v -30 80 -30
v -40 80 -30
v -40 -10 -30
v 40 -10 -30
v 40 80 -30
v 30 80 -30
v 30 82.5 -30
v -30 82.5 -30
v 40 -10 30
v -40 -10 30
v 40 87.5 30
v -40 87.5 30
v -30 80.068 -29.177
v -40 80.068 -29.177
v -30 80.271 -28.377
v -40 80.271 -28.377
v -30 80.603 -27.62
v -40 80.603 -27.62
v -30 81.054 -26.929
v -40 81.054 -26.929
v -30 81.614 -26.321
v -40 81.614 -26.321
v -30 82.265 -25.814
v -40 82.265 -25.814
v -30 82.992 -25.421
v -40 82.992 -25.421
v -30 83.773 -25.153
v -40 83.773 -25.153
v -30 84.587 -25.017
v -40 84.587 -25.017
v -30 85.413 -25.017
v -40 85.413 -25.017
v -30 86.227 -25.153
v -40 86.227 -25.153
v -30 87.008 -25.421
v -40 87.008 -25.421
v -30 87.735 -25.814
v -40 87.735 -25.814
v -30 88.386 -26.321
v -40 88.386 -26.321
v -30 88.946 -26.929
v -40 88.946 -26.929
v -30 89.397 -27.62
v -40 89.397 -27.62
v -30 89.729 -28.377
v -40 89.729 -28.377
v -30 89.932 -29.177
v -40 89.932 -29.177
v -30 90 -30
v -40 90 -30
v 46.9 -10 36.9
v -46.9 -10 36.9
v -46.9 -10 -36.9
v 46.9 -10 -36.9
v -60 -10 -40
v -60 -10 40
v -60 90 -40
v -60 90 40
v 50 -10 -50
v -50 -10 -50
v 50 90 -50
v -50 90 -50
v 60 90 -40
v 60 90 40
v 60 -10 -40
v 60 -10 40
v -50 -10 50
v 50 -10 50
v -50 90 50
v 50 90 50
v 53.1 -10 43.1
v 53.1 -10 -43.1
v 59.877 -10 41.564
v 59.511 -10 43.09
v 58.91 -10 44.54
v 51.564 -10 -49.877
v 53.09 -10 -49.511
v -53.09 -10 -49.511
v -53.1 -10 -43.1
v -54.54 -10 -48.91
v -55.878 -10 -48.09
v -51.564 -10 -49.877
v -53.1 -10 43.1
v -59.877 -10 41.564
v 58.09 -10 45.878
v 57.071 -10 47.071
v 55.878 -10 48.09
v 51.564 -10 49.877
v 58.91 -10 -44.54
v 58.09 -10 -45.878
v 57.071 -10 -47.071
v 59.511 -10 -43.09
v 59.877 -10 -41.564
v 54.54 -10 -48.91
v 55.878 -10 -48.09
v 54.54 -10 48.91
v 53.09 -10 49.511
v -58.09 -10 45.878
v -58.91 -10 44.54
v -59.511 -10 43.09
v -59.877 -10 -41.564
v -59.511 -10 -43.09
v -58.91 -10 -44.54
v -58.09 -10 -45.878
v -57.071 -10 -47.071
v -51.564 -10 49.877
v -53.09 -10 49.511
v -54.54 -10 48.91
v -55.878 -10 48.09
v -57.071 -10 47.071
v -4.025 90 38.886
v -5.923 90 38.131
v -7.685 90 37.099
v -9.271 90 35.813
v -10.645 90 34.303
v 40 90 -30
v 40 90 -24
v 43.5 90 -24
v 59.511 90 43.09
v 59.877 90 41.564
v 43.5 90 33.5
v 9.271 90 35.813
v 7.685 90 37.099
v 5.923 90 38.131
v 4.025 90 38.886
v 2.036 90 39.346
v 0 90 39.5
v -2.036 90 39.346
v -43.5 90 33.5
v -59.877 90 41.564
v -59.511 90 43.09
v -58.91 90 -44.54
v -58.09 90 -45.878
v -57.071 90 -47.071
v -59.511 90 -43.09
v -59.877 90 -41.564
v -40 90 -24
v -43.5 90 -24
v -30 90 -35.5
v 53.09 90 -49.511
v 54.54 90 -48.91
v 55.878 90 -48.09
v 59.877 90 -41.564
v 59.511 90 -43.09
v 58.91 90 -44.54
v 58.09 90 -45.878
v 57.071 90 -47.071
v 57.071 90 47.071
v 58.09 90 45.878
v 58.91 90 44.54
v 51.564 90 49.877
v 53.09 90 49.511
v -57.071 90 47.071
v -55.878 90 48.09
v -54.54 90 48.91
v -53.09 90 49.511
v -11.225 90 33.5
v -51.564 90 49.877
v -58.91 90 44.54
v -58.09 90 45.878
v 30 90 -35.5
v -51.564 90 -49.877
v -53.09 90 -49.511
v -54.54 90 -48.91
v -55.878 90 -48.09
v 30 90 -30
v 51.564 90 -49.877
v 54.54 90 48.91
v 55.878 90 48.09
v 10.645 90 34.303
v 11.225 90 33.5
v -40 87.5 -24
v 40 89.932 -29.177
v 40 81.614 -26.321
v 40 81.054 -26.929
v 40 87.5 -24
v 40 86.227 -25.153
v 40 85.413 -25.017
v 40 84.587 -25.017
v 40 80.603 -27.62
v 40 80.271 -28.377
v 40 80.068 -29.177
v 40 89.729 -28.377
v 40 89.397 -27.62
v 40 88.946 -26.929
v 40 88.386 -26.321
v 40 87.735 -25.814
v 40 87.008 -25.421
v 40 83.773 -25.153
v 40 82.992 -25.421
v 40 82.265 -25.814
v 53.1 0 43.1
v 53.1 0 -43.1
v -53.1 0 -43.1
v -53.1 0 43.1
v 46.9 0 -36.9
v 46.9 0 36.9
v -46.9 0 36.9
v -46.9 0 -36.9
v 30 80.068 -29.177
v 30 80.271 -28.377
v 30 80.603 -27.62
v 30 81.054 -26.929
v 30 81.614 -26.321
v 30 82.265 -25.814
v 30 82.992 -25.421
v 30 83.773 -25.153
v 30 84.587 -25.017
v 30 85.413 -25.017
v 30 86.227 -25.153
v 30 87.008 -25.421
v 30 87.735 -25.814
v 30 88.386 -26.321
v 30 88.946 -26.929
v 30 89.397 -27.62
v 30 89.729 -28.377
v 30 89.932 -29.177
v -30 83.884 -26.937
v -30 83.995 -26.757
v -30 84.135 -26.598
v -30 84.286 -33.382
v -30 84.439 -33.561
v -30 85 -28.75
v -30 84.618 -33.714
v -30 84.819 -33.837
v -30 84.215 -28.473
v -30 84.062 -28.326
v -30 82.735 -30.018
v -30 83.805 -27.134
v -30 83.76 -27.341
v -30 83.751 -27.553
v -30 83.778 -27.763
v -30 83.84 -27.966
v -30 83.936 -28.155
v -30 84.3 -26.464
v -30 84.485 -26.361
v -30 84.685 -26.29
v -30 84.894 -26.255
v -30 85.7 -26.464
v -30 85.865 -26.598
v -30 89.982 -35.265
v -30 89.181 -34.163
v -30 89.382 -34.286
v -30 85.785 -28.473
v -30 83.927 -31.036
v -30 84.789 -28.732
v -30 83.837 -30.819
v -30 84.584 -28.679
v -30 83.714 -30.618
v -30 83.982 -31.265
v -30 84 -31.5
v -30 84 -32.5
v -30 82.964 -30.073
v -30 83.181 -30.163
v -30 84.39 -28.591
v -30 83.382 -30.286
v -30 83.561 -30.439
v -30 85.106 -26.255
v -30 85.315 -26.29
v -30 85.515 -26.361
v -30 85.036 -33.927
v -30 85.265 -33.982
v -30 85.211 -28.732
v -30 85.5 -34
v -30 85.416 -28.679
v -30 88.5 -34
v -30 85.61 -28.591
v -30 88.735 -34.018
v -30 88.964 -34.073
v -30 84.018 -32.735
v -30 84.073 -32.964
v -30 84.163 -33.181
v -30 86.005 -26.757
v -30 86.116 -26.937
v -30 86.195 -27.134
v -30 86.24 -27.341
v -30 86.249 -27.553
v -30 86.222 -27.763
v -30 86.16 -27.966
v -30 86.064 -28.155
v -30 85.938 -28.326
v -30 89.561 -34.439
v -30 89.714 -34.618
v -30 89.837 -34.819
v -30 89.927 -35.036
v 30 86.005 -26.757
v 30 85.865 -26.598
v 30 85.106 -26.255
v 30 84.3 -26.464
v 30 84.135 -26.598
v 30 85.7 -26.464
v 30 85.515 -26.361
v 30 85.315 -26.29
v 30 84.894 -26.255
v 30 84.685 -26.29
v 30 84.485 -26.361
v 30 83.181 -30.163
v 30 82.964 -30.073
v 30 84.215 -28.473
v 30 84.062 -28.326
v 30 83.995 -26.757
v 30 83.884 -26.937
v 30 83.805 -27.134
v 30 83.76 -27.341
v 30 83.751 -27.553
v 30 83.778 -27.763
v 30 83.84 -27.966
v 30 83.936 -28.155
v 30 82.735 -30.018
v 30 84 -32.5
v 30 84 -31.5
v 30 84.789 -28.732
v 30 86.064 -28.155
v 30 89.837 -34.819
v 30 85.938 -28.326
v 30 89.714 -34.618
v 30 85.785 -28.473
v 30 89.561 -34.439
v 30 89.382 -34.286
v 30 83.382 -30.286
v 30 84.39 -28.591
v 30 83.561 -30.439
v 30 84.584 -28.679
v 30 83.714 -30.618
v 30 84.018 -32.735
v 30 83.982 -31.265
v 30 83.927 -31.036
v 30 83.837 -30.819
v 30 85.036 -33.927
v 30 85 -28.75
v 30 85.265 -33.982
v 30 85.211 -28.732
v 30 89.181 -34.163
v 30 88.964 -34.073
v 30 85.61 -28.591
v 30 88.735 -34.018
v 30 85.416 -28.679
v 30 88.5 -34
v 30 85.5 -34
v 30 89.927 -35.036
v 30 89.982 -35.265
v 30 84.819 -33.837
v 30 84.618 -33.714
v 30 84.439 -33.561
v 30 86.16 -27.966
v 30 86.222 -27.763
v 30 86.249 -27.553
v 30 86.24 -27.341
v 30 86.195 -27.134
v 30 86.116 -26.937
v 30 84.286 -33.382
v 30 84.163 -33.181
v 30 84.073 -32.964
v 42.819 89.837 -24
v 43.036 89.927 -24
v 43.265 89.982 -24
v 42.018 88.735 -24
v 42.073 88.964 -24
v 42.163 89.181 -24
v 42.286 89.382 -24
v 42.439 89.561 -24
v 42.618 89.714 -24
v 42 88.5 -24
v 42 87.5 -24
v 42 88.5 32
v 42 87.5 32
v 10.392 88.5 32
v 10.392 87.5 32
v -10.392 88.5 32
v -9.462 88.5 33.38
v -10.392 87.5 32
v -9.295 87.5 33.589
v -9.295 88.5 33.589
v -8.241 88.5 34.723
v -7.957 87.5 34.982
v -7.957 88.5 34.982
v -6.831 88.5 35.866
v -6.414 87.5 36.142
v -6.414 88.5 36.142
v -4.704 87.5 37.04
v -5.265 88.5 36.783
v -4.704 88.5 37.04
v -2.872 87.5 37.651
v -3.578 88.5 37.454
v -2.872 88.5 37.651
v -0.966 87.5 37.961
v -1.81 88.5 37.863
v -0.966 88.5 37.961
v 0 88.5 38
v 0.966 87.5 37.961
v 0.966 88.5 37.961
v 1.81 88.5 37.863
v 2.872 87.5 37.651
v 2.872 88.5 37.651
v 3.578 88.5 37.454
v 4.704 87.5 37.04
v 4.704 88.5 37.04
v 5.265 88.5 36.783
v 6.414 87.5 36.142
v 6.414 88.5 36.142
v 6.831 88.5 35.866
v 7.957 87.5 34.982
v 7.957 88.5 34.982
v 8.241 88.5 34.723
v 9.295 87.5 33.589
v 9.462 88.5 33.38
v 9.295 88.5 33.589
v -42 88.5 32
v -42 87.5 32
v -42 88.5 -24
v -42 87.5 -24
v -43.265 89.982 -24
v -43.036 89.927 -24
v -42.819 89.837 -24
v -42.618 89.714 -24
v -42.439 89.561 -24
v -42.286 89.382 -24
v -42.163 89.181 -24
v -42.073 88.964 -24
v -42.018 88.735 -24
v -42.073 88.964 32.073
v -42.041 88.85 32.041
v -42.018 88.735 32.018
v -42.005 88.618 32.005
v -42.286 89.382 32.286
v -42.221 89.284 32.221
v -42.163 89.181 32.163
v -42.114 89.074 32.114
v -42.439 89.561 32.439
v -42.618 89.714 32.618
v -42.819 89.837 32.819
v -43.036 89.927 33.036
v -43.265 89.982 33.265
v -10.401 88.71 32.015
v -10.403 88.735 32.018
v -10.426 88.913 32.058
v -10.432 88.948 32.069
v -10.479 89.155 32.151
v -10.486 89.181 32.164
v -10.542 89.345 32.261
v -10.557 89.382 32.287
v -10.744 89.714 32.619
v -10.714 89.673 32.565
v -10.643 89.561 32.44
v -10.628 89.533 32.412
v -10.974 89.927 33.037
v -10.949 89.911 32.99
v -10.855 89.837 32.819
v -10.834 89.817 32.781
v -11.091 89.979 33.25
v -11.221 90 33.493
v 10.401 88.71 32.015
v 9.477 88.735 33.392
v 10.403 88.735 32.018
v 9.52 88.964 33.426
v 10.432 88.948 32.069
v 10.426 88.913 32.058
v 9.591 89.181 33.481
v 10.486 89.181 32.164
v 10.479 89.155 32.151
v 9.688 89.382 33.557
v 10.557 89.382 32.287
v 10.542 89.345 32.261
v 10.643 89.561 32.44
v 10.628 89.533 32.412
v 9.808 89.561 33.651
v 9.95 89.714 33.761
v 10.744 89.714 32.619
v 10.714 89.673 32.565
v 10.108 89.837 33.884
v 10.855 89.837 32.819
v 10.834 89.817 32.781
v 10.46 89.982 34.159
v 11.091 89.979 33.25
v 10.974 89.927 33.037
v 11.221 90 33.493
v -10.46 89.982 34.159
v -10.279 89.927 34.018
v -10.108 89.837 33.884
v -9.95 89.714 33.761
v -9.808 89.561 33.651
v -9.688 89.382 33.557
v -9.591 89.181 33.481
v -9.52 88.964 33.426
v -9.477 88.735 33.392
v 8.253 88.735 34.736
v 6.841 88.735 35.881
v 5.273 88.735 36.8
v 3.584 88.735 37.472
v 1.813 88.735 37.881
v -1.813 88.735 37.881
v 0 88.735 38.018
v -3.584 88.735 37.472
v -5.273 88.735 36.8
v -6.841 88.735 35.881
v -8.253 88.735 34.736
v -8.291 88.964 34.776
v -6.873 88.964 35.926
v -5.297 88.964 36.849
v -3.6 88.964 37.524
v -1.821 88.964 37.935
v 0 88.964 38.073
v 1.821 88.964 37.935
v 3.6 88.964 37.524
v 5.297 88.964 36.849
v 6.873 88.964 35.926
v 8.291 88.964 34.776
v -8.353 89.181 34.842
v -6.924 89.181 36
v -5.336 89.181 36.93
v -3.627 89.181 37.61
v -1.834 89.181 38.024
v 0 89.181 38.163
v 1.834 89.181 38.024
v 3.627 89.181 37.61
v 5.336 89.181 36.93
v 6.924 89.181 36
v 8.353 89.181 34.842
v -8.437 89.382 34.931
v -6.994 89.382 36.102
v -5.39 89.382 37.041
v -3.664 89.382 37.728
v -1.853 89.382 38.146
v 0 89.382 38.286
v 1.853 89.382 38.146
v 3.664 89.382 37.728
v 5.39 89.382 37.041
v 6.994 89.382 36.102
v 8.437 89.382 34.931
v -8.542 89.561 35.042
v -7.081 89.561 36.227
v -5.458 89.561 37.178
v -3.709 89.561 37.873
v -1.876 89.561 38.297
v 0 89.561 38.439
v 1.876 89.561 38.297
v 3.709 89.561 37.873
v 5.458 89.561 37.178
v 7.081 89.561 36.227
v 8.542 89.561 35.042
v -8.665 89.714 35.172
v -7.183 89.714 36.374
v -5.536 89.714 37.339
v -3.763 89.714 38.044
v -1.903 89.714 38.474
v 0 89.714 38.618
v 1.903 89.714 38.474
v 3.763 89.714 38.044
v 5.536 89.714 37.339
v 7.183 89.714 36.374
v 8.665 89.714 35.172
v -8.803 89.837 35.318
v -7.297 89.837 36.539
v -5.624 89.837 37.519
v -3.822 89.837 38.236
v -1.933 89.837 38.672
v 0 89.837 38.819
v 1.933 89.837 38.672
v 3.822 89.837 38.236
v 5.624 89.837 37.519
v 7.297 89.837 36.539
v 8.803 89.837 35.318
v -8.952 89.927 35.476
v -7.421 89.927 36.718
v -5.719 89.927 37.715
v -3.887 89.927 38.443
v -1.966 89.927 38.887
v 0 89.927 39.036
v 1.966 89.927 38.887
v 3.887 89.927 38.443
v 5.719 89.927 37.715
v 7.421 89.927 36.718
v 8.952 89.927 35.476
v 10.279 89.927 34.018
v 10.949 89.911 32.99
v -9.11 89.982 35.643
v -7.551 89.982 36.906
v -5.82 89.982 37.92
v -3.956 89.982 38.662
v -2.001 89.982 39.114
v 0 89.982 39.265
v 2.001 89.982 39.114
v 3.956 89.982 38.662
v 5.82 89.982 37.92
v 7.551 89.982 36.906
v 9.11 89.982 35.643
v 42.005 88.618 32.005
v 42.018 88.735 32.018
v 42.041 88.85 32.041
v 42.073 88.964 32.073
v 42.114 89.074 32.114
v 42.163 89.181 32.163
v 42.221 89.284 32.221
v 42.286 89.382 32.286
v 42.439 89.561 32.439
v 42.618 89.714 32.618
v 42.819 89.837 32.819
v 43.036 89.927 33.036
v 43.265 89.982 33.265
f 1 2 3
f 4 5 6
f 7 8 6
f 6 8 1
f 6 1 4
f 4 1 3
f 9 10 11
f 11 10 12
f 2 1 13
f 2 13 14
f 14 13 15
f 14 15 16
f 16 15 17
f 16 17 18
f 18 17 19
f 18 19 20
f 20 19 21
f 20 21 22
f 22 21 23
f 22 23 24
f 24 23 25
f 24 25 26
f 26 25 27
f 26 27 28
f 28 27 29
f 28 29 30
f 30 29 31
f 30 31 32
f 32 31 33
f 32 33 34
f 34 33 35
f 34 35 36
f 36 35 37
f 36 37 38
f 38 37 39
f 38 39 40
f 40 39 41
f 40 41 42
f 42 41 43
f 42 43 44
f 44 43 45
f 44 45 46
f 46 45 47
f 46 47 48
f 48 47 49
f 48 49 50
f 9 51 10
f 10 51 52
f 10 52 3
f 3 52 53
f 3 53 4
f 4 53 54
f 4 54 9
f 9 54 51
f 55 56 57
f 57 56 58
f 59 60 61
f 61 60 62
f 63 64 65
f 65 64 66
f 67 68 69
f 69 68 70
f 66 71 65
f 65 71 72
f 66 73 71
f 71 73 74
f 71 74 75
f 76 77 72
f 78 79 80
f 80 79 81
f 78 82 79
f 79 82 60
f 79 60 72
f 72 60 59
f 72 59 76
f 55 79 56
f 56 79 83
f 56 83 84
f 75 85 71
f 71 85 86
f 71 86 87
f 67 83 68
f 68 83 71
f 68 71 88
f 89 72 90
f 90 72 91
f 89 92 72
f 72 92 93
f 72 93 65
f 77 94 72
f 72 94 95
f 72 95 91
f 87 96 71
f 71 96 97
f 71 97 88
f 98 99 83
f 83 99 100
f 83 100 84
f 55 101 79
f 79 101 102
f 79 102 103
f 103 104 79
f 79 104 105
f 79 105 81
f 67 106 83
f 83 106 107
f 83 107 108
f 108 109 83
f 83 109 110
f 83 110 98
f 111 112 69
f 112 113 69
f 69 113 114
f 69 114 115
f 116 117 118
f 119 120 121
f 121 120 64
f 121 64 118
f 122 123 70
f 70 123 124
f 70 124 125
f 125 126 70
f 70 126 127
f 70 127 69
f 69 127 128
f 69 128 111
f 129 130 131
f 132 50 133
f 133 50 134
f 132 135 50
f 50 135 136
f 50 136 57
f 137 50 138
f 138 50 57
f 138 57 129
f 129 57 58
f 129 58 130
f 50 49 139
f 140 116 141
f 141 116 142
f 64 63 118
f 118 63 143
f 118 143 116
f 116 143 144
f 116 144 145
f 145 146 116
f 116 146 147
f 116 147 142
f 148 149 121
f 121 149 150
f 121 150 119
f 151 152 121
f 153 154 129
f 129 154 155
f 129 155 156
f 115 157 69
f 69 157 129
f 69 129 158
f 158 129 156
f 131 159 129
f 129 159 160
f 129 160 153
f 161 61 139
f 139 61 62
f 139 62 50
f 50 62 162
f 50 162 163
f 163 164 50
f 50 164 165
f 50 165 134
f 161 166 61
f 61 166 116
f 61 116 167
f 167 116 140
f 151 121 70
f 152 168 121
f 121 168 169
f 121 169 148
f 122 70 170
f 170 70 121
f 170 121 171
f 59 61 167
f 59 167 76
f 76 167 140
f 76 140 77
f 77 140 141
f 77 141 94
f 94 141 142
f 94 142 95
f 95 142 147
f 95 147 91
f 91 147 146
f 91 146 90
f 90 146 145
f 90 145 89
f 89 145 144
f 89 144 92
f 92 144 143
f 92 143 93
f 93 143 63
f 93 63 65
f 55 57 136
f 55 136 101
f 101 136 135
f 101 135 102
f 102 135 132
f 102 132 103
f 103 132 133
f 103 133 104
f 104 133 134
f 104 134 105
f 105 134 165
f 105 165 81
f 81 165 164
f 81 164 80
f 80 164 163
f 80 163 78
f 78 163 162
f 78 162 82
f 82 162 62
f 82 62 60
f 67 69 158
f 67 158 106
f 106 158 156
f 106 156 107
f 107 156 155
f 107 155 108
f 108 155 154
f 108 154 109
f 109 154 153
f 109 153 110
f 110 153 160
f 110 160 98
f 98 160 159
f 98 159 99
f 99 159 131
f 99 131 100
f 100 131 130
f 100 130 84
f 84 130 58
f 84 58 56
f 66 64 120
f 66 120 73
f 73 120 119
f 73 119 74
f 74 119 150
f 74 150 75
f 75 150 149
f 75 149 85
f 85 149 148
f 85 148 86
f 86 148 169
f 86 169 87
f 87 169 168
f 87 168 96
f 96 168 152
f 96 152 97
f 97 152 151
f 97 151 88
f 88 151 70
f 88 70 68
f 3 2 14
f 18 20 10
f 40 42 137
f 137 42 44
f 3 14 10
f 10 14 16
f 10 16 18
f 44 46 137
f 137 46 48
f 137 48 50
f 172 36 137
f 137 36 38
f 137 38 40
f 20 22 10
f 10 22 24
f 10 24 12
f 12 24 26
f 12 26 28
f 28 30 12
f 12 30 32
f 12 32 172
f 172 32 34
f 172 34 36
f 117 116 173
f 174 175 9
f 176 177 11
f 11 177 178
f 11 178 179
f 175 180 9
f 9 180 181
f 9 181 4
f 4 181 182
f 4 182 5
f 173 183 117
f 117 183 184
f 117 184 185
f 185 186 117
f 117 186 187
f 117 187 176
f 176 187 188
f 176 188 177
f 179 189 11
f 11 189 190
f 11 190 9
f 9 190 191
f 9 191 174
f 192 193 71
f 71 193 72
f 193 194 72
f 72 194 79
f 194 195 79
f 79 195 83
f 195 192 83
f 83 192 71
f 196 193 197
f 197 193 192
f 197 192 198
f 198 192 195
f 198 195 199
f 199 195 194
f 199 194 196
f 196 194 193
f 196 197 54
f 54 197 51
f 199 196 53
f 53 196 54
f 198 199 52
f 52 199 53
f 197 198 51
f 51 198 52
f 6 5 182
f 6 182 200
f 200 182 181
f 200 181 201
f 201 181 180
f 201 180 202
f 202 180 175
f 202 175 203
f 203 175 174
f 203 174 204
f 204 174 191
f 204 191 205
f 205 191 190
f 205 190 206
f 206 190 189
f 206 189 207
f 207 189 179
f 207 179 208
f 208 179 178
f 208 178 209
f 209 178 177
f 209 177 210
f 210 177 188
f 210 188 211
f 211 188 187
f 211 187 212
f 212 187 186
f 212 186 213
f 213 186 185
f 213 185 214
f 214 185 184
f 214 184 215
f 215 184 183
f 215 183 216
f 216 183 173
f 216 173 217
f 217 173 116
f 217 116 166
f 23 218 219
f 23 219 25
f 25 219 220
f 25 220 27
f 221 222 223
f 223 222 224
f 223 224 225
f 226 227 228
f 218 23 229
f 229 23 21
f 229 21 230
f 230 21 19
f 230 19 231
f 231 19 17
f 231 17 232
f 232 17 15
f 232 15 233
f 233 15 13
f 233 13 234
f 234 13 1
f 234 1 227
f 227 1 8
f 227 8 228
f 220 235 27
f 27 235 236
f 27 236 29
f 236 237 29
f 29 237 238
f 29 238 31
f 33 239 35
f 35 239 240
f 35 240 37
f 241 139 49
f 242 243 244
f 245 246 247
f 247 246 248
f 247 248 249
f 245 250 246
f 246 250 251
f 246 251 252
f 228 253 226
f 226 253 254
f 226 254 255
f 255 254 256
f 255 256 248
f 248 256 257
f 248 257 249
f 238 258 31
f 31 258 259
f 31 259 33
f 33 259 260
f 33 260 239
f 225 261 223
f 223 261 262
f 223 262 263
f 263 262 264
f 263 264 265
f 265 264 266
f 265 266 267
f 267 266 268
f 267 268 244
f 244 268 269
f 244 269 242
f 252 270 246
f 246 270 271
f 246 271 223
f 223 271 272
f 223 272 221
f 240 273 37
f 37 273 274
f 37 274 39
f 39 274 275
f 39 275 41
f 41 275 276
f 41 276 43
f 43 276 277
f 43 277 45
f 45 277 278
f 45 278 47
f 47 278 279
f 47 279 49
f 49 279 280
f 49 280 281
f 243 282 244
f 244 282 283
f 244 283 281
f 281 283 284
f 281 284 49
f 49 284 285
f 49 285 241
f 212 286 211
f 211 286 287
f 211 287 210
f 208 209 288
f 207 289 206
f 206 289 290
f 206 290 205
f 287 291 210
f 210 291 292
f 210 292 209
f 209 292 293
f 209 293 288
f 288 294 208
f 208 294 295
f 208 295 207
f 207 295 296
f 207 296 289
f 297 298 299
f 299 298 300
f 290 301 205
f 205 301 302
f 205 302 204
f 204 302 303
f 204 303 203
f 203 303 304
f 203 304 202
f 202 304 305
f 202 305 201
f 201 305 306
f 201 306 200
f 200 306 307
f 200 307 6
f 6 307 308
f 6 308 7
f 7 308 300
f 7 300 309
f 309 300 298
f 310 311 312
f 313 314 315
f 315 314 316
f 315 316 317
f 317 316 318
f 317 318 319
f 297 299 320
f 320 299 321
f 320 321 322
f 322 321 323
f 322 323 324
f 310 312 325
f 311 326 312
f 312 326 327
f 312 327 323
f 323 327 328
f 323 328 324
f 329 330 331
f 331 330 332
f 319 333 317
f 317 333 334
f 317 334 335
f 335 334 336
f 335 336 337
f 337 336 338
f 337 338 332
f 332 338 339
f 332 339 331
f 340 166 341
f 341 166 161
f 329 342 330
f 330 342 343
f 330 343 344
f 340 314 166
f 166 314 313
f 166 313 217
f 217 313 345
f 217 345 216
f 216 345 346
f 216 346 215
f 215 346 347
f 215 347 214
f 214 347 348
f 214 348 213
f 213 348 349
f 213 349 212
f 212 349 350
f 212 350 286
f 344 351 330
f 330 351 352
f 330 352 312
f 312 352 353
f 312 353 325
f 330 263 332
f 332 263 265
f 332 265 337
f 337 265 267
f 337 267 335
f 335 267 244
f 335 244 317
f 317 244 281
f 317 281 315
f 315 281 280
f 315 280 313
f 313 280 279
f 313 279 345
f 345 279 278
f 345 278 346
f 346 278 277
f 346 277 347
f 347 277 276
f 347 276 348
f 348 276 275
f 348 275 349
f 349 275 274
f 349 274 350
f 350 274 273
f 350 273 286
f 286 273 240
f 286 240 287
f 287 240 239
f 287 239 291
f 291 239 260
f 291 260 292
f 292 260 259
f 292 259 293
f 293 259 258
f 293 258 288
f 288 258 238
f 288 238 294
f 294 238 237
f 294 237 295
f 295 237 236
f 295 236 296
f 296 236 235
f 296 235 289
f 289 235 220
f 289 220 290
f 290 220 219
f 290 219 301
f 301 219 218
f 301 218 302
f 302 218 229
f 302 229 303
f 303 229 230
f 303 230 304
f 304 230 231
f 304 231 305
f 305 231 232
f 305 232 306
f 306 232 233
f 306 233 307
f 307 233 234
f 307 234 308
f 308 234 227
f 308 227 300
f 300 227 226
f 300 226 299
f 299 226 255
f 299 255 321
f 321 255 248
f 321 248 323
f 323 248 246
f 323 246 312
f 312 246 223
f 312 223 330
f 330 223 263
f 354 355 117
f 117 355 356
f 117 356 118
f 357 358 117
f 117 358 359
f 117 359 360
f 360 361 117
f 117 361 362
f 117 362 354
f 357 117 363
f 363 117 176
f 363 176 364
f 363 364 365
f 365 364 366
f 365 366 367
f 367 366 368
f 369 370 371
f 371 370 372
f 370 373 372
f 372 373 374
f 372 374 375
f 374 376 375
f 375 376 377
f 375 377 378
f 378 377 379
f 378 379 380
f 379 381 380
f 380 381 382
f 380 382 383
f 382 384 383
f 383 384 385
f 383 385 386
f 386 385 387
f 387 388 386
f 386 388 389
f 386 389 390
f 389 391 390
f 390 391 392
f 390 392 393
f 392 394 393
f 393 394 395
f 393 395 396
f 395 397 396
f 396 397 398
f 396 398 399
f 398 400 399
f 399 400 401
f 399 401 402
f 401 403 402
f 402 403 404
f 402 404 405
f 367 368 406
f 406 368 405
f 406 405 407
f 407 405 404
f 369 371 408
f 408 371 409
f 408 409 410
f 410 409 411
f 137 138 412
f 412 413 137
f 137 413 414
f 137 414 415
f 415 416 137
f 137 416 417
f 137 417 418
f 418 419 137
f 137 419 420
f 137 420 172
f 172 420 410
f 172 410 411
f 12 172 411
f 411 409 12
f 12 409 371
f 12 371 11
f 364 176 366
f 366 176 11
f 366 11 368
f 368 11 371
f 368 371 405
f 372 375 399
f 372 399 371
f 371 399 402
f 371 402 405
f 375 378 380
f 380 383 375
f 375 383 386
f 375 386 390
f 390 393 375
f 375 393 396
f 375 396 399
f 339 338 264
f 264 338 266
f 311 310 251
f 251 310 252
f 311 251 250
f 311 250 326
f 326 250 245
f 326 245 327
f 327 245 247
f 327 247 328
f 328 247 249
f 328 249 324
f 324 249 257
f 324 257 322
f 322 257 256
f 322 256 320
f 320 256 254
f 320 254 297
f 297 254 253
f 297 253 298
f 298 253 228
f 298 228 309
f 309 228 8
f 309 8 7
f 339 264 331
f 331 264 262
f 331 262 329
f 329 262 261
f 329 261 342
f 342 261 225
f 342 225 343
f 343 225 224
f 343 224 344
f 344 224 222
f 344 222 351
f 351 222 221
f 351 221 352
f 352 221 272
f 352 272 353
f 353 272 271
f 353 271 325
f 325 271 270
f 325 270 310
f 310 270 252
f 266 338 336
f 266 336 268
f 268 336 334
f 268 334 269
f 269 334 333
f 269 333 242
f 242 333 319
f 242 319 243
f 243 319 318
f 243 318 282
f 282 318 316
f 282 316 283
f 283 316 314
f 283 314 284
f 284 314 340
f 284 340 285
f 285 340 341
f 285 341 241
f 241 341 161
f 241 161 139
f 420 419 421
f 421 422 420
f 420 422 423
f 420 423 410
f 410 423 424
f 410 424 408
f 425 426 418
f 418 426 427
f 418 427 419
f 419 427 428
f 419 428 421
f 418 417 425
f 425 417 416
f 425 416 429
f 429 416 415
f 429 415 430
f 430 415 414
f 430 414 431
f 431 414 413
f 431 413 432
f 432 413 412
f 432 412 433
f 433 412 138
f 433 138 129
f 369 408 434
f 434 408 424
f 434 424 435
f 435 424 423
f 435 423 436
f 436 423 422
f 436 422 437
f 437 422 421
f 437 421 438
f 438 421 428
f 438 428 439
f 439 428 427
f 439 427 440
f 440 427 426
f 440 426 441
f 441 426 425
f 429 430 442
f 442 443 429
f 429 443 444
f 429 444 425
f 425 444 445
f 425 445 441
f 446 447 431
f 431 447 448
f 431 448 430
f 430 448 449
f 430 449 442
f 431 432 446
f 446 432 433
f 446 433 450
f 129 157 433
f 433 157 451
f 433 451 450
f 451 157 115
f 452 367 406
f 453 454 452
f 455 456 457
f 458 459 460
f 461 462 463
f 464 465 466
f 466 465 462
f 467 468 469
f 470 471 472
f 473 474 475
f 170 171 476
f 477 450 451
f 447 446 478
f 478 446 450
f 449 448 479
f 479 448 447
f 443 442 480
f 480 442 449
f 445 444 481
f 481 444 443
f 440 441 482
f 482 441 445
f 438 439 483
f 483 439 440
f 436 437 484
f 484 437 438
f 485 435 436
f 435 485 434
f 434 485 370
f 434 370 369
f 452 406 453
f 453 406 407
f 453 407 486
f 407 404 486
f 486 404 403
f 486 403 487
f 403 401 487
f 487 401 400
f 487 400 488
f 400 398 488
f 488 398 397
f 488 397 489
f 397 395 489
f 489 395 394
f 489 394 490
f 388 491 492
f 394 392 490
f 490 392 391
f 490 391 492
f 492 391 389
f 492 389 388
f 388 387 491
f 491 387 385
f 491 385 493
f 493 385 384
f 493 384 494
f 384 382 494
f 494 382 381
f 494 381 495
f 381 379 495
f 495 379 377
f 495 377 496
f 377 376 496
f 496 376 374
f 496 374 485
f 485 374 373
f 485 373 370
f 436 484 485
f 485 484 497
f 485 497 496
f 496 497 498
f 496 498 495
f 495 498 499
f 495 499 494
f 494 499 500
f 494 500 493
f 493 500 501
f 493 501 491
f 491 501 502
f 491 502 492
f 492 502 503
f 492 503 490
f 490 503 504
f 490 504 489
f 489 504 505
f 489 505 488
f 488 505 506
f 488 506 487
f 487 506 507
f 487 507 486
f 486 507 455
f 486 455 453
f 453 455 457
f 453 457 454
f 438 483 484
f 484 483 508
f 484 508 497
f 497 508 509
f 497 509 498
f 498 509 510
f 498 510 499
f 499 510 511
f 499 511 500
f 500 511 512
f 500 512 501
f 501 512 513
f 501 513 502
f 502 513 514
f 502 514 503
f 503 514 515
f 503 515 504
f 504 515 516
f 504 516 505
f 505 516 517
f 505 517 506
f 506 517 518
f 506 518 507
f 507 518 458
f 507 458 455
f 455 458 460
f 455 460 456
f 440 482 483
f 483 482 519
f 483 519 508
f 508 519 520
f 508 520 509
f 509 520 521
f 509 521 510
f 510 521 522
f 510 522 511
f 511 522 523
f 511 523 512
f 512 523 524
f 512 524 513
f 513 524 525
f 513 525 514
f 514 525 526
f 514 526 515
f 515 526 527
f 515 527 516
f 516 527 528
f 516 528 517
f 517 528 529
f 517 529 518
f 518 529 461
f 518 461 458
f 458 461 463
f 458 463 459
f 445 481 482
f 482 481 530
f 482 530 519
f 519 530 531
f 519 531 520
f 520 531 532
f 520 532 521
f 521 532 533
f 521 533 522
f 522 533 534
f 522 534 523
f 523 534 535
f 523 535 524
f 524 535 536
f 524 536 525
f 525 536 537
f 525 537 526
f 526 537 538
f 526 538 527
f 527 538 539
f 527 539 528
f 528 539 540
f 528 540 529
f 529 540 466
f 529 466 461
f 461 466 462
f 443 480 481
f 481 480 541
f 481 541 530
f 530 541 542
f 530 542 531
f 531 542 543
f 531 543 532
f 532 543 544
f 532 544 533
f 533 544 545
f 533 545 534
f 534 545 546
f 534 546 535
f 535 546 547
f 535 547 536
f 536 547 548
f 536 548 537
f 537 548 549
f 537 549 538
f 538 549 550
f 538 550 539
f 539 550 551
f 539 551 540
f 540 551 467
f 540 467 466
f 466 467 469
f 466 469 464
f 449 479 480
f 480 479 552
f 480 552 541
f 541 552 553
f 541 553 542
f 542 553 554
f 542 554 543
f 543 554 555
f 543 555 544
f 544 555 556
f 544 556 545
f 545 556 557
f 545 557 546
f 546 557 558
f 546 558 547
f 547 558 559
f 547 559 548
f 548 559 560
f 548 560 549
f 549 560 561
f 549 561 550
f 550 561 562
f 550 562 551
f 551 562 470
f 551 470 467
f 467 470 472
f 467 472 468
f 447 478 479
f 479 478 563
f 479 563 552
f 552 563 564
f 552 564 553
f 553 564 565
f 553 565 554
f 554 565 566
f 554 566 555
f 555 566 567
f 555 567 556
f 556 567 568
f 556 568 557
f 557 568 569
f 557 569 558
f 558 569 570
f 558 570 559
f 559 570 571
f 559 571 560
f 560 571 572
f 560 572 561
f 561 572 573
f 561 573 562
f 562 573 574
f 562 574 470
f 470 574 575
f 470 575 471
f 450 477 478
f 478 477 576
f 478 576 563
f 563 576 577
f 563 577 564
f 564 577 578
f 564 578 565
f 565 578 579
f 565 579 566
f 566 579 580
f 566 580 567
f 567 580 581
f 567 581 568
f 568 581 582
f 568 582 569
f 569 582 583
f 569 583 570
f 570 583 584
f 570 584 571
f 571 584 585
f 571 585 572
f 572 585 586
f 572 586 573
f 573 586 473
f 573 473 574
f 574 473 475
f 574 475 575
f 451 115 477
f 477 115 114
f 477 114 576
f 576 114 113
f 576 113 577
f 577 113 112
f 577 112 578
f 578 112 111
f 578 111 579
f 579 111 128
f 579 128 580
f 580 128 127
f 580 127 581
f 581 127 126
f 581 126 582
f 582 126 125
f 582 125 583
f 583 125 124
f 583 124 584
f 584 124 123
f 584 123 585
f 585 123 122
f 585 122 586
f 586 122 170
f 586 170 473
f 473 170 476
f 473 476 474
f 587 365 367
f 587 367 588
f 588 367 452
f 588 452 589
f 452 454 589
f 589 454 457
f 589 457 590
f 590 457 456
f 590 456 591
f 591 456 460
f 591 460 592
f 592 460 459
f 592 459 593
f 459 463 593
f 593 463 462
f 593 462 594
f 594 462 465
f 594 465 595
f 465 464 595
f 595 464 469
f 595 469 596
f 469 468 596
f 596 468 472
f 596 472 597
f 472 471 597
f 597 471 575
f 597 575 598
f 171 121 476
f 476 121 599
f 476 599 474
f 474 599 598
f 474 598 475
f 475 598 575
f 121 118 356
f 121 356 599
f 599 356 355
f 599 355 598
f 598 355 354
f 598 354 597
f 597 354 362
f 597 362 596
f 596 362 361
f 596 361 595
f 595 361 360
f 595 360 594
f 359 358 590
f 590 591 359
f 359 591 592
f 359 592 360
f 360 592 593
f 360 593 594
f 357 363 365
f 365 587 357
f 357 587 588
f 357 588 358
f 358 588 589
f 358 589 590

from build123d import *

# Parameters (mm, degrees)
BOSS_EXTRUDE1_DEPTH      = 90
BOSS_EXTRUDE1_DEPTH_BACK = 10
SKETCH1_W                = 120
SKETCH1_H                = 100
FILLET1_R                = 10
SKETCH2_W                = 80
SKETCH2_H                = 60
CUT_EXTRUDE1_DEPTH       = 127.885775404
SKETCH3_W                = 106.2
SKETCH3_H                = 86.2
SKETCH3_W_2              = 93.8
SKETCH3_H_2              = 73.8
CUT_EXTRUDE2_DEPTH       = 10
BOSS_EXTRUDE3_START      = -20
BOSS_EXTRUDE3_DEPTH      = 80
CUT_EXTRUDE3_START       = -30
SKETCH5_R                = 1.25
CUT_EXTRUDE3_DEPTH       = 60
CUT_EXTRUDE4_DEPTH       = 2.5
SKETCH7_W                = 60
SKETCH7_H                = 4
CUT_EXTRUDE5_DEPTH       = 6
FILLET2_R                = 1.5


with BuildPart() as part:
    # Sketch1 → Boss-Extrude1 (new, two sides: drawn at the far end of the back side and taken through both)
    with BuildSketch(Plane(origin=(0, 0, 0), x_dir=(1, 0, 0), z_dir=(0, 1, 0)).offset(-BOSS_EXTRUDE1_DEPTH_BACK)):
        Rectangle(SKETCH1_W, SKETCH1_H)
    extrude(amount=BOSS_EXTRUDE1_DEPTH + BOSS_EXTRUDE1_DEPTH_BACK)

    # Fillet1
    fillet1_edges = [part.edges().sort_by_distance(p)[0] for p in [
        (-60, 40, -50),
        (60, 40, -50),
        (60, 40, 50),
        (-60, 40, 50),
    ]]
    fillet(fillet1_edges, radius=FILLET1_R)

    # Sketch2 → Cut-Extrude1 (cut, through all)
    with BuildSketch(Plane(origin=(0, 90, 0), x_dir=(1, 0, 0), z_dir=(0, 1, 0))):
        Rectangle(SKETCH2_W, SKETCH2_H)
    extrude(amount=-CUT_EXTRUDE1_DEPTH, mode=Mode.SUBTRACT)

    # Sketch3 → Cut-Extrude2 (cut)
    with BuildSketch(Plane.XZ.offset(10)):
        Rectangle(SKETCH3_W, SKETCH3_H)
        Rectangle(SKETCH3_W_2, SKETCH3_H_2, mode=Mode.SUBTRACT)
    extrude(amount=-CUT_EXTRUDE2_DEPTH, mode=Mode.SUBTRACT)

    # Sketch4 → Boss-Extrude3 (add)
    with BuildSketch(Plane(origin=(60, 0, 0), x_dir=(0, 0, -1), z_dir=(1, 0, 0)).offset(BOSS_EXTRUDE3_START)):
        with BuildLine():
            Line((30, 80), (30, 90))
            ThreePointArc((30, 90), (25, 85), (30, 80))
        make_face()
    extrude(amount=-BOSS_EXTRUDE3_DEPTH)

    # Sketch5 → Cut-Extrude3 (cut)
    with BuildSketch(Plane(origin=(60, 0, 0), x_dir=(0, 0, -1), z_dir=(1, 0, 0)).offset(CUT_EXTRUDE3_START)):
        with BuildLine():
            Line((30, 80), (30, 90))
            ThreePointArc((30, 90), (25, 85), (30, 80))
        make_face()
        with Locations((27.5, 85)):
            Circle(SKETCH5_R, mode=Mode.SUBTRACT)
    extrude(amount=-CUT_EXTRUDE3_DEPTH, mode=Mode.SUBTRACT)

    # Sketch6 → Cut-Extrude4 (cut)
    with BuildSketch(Plane(origin=(0, 90, 0), x_dir=(1, 0, 0), z_dir=(0, 1, 0))):
        with BuildLine():
            Line((-40, -30), (-40, 24))
            Line((-40, 24), (-42, 24))
            Line((-42, 24), (-42, -32))
            Line((-42, -32), (-10.392304845, -32))
            ThreePointArc((-10.392304845, -32), (0, -38), (10.392304845, -32))
            Line((10.392304845, -32), (42, -32))
            Line((42, -32), (42, 24))
            Line((42, 24), (40, 24))
            Line((40, 24), (40, -30))
            Line((40, -30), (-40, -30))
        make_face()
    extrude(amount=-CUT_EXTRUDE4_DEPTH, mode=Mode.SUBTRACT)

    # Sketch7 → Cut-Extrude5 (cut)
    with BuildSketch(Plane(origin=(0, 90, 0), x_dir=(1, 0, 0), z_dir=(0, 1, 0))):
        with Locations((0, 32)):
            Rectangle(SKETCH7_W, SKETCH7_H)
    extrude(amount=-CUT_EXTRUDE5_DEPTH, mode=Mode.SUBTRACT)

    # Fillet2
    fillet2_edges = [part.edges().sort_by_distance(p)[0] for p in [
        (-42, 90, 4),
        (-26.196152423, 90, 32),
        (0, 90, 38),
        (26.196152423, 90, 32),
        (42, 90, 4),
        (0, 84, -34),
        (0, 84, -30),
        (0, 90, -34),
    ]]
    fillet(fillet2_edges, radius=FILLET2_R)


solid = part.part
